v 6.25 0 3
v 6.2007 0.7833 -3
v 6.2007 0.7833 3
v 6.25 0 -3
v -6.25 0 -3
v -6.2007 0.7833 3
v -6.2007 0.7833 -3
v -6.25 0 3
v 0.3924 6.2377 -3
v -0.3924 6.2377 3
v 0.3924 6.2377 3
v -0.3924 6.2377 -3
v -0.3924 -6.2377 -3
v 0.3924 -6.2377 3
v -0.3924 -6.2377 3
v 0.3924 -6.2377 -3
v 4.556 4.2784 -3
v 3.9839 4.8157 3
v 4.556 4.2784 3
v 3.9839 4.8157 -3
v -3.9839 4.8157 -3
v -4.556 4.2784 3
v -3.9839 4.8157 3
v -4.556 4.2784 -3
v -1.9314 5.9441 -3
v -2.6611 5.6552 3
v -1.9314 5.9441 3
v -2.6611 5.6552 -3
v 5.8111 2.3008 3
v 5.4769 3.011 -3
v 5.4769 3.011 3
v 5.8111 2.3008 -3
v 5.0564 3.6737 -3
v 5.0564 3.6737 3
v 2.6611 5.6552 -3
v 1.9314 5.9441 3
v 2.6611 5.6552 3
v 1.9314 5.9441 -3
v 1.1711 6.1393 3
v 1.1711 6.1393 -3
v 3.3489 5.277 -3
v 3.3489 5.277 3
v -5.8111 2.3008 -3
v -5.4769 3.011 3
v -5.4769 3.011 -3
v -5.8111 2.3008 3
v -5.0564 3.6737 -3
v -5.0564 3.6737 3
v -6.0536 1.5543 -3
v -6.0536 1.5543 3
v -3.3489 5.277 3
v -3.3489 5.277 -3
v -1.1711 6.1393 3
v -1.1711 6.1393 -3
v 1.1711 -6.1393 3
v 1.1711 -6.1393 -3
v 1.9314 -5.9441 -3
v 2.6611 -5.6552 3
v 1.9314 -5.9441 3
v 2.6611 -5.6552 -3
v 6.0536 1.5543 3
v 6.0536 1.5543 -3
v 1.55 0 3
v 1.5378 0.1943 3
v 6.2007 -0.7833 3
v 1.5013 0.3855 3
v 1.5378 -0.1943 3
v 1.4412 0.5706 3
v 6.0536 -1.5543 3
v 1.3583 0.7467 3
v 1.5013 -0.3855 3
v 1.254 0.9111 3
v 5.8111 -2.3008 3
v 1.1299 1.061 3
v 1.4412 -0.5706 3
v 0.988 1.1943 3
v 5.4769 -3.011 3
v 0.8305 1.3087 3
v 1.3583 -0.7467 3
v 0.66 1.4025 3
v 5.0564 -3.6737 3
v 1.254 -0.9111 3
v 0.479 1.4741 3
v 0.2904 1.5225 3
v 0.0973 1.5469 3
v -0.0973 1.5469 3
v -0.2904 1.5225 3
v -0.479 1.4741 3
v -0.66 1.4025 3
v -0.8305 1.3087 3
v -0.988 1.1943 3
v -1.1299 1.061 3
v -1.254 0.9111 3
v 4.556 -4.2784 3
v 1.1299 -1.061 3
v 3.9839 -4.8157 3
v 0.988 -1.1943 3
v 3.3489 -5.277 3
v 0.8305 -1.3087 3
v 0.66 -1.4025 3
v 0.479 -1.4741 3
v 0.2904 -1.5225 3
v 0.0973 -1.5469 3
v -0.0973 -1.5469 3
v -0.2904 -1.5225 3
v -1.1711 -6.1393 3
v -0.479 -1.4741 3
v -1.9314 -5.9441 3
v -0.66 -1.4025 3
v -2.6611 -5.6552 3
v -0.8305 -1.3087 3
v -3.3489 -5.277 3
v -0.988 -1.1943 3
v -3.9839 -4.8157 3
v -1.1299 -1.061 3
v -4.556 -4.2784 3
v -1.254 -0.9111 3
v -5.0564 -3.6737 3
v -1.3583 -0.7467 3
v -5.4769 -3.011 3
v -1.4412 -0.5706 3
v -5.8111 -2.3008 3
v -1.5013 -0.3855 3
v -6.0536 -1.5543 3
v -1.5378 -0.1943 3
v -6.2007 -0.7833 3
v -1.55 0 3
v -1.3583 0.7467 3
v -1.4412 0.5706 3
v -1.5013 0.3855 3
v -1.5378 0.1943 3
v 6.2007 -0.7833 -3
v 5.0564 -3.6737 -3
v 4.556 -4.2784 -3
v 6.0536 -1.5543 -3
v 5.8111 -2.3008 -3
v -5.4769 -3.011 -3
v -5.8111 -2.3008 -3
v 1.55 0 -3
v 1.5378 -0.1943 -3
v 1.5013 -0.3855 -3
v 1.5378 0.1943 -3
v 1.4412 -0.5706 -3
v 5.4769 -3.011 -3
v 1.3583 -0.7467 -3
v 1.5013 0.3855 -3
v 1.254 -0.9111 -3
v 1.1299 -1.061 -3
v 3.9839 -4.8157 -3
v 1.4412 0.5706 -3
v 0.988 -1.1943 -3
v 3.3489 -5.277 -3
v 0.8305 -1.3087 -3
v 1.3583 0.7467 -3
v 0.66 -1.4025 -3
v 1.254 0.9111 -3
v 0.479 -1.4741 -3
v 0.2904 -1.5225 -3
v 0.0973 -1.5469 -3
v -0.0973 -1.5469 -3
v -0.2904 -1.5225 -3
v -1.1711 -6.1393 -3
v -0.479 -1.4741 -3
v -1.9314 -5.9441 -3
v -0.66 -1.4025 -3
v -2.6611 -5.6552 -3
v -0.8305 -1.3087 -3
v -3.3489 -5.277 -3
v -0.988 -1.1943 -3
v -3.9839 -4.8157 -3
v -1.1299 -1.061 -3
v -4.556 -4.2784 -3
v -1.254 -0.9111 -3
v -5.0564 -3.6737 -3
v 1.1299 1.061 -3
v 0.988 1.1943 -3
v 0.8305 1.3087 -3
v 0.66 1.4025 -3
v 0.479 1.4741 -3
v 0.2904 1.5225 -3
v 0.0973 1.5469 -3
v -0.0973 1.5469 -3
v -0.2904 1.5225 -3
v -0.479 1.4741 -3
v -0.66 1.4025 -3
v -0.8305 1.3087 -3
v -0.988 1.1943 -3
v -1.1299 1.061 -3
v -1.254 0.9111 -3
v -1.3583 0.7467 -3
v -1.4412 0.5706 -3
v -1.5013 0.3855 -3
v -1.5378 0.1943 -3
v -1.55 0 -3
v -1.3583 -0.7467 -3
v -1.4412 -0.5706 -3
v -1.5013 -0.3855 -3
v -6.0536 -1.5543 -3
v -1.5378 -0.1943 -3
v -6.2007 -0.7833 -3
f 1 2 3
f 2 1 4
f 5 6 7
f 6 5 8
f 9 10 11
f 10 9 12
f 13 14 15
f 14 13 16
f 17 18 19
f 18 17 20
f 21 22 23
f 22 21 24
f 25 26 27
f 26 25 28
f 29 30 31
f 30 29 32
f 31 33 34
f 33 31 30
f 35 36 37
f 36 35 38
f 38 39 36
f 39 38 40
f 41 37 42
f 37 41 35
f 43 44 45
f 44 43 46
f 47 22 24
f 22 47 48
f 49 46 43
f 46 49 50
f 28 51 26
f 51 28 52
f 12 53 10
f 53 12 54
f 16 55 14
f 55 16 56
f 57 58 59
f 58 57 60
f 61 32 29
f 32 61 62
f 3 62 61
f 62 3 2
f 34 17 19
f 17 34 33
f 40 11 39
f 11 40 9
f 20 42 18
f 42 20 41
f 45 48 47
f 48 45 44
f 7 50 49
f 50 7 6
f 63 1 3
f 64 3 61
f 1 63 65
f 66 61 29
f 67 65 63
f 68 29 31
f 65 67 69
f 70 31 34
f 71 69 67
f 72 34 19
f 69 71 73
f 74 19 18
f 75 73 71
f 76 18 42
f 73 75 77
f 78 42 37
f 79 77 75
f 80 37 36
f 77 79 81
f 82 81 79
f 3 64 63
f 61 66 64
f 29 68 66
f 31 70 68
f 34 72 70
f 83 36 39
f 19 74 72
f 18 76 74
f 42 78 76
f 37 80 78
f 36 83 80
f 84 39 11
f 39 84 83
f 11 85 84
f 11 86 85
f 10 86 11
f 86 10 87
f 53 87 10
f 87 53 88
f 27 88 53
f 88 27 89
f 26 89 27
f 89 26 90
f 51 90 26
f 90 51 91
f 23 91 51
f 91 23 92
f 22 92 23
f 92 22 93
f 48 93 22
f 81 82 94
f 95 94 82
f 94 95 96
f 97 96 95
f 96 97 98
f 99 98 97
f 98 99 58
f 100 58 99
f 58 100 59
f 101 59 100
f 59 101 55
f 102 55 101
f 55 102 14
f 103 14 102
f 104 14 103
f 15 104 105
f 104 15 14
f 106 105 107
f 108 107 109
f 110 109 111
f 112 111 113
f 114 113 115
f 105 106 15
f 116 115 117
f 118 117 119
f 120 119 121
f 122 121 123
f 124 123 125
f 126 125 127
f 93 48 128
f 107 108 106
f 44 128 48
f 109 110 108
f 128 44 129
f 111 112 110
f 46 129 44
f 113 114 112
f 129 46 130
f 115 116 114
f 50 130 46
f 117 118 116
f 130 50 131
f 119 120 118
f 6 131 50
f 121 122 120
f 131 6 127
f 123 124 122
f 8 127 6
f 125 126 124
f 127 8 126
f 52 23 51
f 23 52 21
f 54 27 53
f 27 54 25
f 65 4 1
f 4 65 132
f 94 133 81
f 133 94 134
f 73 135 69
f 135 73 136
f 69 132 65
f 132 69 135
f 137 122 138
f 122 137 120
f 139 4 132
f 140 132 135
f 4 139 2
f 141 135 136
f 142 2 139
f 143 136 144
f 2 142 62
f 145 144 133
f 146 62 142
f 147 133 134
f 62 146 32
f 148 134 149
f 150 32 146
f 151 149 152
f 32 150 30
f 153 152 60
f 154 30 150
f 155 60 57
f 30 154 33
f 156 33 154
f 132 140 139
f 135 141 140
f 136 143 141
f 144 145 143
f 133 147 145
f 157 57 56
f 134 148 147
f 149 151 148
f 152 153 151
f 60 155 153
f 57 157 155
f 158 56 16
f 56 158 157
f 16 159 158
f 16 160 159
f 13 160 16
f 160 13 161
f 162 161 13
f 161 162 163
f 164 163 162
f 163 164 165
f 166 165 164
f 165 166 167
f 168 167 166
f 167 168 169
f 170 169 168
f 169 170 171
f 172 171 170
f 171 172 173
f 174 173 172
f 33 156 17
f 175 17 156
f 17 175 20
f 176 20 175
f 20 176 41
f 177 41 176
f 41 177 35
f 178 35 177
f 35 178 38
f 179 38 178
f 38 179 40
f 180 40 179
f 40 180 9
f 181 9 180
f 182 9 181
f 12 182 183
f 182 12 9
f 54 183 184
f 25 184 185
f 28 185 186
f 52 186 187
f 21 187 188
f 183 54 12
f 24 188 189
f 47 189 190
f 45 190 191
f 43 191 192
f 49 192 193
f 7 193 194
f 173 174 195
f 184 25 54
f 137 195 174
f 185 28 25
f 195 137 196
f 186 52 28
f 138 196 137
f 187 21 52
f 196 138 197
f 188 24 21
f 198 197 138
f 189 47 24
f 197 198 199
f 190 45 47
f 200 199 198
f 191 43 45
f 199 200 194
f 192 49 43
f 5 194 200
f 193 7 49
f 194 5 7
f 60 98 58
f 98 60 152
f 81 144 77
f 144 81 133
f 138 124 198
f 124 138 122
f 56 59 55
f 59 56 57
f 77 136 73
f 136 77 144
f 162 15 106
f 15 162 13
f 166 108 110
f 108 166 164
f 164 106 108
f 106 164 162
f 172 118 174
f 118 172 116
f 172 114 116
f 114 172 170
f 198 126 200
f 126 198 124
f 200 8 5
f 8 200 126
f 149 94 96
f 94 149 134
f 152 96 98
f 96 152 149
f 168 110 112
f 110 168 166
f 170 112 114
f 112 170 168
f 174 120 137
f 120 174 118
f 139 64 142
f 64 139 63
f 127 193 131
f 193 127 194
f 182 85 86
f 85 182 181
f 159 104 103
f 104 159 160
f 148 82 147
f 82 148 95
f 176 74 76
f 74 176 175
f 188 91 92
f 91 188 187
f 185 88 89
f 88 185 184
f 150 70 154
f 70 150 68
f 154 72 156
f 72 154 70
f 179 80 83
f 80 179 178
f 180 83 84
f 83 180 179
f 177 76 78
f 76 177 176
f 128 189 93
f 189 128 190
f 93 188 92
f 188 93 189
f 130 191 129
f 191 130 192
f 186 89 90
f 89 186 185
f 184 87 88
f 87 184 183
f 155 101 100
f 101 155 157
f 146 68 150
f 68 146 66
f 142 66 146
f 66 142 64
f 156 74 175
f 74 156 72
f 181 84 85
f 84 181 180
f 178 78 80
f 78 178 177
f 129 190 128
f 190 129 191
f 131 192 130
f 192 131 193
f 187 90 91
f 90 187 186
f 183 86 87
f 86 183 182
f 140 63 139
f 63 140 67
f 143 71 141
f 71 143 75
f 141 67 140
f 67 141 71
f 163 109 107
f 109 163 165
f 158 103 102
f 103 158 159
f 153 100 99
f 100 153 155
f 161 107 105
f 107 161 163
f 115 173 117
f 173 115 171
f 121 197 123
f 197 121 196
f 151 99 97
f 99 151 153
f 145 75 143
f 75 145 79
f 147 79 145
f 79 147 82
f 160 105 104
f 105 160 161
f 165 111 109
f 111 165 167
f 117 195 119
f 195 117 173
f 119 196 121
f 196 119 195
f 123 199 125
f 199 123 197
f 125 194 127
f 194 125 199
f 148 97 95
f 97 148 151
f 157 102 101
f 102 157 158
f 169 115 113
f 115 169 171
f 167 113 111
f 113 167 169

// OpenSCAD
$fn = 50;


difference() {
	union() {
		translate(v = [0, 0, -3.0000000000]) {
			cylinder(h = 6, r = 6.2500000000);
		}
	}
	union() {
		translate(v = [0, 0, -100.0000000000]) {
			cylinder(h = 200, r = 1.5500000000);
		}
	}
}
